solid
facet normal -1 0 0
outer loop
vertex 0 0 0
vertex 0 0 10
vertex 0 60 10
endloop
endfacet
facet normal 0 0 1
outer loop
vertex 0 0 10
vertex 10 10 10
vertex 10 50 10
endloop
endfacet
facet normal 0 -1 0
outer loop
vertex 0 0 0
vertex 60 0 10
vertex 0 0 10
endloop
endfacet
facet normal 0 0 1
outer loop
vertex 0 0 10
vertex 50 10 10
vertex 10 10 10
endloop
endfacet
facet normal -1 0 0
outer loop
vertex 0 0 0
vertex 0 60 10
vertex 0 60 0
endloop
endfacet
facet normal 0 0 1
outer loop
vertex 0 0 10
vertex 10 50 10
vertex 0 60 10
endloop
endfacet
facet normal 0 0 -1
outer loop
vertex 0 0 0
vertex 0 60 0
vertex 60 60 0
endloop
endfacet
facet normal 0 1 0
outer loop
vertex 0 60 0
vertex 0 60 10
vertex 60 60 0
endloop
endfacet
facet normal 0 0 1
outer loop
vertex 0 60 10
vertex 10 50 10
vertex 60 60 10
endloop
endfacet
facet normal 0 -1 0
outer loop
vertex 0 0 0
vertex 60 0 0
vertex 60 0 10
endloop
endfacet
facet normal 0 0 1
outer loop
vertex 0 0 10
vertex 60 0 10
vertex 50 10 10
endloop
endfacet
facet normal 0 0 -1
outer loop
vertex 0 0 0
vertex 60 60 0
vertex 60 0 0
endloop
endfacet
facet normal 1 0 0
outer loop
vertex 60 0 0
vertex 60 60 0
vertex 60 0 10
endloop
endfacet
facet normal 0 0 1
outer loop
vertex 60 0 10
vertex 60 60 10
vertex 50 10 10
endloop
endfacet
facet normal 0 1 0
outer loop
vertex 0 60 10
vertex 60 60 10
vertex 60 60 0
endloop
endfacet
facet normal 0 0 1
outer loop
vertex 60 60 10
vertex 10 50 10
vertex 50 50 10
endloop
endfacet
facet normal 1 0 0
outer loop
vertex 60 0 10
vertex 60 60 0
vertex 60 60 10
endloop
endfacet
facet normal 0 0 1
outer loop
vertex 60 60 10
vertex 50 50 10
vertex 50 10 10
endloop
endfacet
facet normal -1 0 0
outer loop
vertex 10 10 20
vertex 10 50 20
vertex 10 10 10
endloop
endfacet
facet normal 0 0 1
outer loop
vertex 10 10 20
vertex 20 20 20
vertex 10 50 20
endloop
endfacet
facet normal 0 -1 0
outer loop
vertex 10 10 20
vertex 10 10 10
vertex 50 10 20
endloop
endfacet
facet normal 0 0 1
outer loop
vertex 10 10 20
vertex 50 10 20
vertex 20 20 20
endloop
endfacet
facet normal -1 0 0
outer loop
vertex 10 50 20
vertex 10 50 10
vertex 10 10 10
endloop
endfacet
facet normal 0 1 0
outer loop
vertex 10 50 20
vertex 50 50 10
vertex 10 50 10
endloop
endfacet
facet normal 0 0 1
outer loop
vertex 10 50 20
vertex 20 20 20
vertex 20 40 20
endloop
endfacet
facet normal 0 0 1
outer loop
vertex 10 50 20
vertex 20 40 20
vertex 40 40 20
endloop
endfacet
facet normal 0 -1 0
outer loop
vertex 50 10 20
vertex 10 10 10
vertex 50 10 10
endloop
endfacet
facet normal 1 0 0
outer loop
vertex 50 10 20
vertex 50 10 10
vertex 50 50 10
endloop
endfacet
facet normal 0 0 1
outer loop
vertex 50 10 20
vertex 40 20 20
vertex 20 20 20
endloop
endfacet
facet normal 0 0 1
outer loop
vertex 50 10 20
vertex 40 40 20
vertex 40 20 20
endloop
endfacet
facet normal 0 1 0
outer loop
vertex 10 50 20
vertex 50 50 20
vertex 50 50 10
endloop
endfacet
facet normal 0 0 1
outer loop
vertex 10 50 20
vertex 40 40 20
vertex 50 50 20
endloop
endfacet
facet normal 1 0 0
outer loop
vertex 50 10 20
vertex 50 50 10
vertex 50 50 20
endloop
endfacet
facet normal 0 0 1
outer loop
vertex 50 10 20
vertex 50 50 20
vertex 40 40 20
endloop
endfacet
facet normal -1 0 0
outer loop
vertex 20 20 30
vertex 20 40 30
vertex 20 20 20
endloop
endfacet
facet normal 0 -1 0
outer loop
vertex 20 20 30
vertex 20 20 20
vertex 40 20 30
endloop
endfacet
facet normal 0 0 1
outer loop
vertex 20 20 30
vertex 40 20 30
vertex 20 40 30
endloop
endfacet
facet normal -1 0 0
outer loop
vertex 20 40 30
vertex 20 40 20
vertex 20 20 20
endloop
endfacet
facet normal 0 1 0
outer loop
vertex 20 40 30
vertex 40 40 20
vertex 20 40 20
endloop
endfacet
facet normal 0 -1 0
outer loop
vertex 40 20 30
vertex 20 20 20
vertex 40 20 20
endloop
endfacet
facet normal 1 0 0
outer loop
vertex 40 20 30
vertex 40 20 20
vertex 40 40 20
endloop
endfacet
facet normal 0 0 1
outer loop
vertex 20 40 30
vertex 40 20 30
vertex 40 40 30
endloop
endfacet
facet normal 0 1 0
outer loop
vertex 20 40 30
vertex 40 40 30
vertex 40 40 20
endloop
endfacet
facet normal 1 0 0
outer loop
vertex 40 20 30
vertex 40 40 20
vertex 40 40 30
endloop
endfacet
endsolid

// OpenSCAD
// 3段の階段状ピラミッド
// 各段: 60x60, 40x40, 20x20 (高さ各10mm)、中心を揃えて積み上げ

// 1段目
translate([0, 0, 0])
    cube([60, 60, 10], center = false);

// 2段目
translate([10, 10, 10])
    cube([40, 40, 10], center = false);

// 3段目
translate([20, 20, 20])
    cube([20, 20, 10], center = false);
